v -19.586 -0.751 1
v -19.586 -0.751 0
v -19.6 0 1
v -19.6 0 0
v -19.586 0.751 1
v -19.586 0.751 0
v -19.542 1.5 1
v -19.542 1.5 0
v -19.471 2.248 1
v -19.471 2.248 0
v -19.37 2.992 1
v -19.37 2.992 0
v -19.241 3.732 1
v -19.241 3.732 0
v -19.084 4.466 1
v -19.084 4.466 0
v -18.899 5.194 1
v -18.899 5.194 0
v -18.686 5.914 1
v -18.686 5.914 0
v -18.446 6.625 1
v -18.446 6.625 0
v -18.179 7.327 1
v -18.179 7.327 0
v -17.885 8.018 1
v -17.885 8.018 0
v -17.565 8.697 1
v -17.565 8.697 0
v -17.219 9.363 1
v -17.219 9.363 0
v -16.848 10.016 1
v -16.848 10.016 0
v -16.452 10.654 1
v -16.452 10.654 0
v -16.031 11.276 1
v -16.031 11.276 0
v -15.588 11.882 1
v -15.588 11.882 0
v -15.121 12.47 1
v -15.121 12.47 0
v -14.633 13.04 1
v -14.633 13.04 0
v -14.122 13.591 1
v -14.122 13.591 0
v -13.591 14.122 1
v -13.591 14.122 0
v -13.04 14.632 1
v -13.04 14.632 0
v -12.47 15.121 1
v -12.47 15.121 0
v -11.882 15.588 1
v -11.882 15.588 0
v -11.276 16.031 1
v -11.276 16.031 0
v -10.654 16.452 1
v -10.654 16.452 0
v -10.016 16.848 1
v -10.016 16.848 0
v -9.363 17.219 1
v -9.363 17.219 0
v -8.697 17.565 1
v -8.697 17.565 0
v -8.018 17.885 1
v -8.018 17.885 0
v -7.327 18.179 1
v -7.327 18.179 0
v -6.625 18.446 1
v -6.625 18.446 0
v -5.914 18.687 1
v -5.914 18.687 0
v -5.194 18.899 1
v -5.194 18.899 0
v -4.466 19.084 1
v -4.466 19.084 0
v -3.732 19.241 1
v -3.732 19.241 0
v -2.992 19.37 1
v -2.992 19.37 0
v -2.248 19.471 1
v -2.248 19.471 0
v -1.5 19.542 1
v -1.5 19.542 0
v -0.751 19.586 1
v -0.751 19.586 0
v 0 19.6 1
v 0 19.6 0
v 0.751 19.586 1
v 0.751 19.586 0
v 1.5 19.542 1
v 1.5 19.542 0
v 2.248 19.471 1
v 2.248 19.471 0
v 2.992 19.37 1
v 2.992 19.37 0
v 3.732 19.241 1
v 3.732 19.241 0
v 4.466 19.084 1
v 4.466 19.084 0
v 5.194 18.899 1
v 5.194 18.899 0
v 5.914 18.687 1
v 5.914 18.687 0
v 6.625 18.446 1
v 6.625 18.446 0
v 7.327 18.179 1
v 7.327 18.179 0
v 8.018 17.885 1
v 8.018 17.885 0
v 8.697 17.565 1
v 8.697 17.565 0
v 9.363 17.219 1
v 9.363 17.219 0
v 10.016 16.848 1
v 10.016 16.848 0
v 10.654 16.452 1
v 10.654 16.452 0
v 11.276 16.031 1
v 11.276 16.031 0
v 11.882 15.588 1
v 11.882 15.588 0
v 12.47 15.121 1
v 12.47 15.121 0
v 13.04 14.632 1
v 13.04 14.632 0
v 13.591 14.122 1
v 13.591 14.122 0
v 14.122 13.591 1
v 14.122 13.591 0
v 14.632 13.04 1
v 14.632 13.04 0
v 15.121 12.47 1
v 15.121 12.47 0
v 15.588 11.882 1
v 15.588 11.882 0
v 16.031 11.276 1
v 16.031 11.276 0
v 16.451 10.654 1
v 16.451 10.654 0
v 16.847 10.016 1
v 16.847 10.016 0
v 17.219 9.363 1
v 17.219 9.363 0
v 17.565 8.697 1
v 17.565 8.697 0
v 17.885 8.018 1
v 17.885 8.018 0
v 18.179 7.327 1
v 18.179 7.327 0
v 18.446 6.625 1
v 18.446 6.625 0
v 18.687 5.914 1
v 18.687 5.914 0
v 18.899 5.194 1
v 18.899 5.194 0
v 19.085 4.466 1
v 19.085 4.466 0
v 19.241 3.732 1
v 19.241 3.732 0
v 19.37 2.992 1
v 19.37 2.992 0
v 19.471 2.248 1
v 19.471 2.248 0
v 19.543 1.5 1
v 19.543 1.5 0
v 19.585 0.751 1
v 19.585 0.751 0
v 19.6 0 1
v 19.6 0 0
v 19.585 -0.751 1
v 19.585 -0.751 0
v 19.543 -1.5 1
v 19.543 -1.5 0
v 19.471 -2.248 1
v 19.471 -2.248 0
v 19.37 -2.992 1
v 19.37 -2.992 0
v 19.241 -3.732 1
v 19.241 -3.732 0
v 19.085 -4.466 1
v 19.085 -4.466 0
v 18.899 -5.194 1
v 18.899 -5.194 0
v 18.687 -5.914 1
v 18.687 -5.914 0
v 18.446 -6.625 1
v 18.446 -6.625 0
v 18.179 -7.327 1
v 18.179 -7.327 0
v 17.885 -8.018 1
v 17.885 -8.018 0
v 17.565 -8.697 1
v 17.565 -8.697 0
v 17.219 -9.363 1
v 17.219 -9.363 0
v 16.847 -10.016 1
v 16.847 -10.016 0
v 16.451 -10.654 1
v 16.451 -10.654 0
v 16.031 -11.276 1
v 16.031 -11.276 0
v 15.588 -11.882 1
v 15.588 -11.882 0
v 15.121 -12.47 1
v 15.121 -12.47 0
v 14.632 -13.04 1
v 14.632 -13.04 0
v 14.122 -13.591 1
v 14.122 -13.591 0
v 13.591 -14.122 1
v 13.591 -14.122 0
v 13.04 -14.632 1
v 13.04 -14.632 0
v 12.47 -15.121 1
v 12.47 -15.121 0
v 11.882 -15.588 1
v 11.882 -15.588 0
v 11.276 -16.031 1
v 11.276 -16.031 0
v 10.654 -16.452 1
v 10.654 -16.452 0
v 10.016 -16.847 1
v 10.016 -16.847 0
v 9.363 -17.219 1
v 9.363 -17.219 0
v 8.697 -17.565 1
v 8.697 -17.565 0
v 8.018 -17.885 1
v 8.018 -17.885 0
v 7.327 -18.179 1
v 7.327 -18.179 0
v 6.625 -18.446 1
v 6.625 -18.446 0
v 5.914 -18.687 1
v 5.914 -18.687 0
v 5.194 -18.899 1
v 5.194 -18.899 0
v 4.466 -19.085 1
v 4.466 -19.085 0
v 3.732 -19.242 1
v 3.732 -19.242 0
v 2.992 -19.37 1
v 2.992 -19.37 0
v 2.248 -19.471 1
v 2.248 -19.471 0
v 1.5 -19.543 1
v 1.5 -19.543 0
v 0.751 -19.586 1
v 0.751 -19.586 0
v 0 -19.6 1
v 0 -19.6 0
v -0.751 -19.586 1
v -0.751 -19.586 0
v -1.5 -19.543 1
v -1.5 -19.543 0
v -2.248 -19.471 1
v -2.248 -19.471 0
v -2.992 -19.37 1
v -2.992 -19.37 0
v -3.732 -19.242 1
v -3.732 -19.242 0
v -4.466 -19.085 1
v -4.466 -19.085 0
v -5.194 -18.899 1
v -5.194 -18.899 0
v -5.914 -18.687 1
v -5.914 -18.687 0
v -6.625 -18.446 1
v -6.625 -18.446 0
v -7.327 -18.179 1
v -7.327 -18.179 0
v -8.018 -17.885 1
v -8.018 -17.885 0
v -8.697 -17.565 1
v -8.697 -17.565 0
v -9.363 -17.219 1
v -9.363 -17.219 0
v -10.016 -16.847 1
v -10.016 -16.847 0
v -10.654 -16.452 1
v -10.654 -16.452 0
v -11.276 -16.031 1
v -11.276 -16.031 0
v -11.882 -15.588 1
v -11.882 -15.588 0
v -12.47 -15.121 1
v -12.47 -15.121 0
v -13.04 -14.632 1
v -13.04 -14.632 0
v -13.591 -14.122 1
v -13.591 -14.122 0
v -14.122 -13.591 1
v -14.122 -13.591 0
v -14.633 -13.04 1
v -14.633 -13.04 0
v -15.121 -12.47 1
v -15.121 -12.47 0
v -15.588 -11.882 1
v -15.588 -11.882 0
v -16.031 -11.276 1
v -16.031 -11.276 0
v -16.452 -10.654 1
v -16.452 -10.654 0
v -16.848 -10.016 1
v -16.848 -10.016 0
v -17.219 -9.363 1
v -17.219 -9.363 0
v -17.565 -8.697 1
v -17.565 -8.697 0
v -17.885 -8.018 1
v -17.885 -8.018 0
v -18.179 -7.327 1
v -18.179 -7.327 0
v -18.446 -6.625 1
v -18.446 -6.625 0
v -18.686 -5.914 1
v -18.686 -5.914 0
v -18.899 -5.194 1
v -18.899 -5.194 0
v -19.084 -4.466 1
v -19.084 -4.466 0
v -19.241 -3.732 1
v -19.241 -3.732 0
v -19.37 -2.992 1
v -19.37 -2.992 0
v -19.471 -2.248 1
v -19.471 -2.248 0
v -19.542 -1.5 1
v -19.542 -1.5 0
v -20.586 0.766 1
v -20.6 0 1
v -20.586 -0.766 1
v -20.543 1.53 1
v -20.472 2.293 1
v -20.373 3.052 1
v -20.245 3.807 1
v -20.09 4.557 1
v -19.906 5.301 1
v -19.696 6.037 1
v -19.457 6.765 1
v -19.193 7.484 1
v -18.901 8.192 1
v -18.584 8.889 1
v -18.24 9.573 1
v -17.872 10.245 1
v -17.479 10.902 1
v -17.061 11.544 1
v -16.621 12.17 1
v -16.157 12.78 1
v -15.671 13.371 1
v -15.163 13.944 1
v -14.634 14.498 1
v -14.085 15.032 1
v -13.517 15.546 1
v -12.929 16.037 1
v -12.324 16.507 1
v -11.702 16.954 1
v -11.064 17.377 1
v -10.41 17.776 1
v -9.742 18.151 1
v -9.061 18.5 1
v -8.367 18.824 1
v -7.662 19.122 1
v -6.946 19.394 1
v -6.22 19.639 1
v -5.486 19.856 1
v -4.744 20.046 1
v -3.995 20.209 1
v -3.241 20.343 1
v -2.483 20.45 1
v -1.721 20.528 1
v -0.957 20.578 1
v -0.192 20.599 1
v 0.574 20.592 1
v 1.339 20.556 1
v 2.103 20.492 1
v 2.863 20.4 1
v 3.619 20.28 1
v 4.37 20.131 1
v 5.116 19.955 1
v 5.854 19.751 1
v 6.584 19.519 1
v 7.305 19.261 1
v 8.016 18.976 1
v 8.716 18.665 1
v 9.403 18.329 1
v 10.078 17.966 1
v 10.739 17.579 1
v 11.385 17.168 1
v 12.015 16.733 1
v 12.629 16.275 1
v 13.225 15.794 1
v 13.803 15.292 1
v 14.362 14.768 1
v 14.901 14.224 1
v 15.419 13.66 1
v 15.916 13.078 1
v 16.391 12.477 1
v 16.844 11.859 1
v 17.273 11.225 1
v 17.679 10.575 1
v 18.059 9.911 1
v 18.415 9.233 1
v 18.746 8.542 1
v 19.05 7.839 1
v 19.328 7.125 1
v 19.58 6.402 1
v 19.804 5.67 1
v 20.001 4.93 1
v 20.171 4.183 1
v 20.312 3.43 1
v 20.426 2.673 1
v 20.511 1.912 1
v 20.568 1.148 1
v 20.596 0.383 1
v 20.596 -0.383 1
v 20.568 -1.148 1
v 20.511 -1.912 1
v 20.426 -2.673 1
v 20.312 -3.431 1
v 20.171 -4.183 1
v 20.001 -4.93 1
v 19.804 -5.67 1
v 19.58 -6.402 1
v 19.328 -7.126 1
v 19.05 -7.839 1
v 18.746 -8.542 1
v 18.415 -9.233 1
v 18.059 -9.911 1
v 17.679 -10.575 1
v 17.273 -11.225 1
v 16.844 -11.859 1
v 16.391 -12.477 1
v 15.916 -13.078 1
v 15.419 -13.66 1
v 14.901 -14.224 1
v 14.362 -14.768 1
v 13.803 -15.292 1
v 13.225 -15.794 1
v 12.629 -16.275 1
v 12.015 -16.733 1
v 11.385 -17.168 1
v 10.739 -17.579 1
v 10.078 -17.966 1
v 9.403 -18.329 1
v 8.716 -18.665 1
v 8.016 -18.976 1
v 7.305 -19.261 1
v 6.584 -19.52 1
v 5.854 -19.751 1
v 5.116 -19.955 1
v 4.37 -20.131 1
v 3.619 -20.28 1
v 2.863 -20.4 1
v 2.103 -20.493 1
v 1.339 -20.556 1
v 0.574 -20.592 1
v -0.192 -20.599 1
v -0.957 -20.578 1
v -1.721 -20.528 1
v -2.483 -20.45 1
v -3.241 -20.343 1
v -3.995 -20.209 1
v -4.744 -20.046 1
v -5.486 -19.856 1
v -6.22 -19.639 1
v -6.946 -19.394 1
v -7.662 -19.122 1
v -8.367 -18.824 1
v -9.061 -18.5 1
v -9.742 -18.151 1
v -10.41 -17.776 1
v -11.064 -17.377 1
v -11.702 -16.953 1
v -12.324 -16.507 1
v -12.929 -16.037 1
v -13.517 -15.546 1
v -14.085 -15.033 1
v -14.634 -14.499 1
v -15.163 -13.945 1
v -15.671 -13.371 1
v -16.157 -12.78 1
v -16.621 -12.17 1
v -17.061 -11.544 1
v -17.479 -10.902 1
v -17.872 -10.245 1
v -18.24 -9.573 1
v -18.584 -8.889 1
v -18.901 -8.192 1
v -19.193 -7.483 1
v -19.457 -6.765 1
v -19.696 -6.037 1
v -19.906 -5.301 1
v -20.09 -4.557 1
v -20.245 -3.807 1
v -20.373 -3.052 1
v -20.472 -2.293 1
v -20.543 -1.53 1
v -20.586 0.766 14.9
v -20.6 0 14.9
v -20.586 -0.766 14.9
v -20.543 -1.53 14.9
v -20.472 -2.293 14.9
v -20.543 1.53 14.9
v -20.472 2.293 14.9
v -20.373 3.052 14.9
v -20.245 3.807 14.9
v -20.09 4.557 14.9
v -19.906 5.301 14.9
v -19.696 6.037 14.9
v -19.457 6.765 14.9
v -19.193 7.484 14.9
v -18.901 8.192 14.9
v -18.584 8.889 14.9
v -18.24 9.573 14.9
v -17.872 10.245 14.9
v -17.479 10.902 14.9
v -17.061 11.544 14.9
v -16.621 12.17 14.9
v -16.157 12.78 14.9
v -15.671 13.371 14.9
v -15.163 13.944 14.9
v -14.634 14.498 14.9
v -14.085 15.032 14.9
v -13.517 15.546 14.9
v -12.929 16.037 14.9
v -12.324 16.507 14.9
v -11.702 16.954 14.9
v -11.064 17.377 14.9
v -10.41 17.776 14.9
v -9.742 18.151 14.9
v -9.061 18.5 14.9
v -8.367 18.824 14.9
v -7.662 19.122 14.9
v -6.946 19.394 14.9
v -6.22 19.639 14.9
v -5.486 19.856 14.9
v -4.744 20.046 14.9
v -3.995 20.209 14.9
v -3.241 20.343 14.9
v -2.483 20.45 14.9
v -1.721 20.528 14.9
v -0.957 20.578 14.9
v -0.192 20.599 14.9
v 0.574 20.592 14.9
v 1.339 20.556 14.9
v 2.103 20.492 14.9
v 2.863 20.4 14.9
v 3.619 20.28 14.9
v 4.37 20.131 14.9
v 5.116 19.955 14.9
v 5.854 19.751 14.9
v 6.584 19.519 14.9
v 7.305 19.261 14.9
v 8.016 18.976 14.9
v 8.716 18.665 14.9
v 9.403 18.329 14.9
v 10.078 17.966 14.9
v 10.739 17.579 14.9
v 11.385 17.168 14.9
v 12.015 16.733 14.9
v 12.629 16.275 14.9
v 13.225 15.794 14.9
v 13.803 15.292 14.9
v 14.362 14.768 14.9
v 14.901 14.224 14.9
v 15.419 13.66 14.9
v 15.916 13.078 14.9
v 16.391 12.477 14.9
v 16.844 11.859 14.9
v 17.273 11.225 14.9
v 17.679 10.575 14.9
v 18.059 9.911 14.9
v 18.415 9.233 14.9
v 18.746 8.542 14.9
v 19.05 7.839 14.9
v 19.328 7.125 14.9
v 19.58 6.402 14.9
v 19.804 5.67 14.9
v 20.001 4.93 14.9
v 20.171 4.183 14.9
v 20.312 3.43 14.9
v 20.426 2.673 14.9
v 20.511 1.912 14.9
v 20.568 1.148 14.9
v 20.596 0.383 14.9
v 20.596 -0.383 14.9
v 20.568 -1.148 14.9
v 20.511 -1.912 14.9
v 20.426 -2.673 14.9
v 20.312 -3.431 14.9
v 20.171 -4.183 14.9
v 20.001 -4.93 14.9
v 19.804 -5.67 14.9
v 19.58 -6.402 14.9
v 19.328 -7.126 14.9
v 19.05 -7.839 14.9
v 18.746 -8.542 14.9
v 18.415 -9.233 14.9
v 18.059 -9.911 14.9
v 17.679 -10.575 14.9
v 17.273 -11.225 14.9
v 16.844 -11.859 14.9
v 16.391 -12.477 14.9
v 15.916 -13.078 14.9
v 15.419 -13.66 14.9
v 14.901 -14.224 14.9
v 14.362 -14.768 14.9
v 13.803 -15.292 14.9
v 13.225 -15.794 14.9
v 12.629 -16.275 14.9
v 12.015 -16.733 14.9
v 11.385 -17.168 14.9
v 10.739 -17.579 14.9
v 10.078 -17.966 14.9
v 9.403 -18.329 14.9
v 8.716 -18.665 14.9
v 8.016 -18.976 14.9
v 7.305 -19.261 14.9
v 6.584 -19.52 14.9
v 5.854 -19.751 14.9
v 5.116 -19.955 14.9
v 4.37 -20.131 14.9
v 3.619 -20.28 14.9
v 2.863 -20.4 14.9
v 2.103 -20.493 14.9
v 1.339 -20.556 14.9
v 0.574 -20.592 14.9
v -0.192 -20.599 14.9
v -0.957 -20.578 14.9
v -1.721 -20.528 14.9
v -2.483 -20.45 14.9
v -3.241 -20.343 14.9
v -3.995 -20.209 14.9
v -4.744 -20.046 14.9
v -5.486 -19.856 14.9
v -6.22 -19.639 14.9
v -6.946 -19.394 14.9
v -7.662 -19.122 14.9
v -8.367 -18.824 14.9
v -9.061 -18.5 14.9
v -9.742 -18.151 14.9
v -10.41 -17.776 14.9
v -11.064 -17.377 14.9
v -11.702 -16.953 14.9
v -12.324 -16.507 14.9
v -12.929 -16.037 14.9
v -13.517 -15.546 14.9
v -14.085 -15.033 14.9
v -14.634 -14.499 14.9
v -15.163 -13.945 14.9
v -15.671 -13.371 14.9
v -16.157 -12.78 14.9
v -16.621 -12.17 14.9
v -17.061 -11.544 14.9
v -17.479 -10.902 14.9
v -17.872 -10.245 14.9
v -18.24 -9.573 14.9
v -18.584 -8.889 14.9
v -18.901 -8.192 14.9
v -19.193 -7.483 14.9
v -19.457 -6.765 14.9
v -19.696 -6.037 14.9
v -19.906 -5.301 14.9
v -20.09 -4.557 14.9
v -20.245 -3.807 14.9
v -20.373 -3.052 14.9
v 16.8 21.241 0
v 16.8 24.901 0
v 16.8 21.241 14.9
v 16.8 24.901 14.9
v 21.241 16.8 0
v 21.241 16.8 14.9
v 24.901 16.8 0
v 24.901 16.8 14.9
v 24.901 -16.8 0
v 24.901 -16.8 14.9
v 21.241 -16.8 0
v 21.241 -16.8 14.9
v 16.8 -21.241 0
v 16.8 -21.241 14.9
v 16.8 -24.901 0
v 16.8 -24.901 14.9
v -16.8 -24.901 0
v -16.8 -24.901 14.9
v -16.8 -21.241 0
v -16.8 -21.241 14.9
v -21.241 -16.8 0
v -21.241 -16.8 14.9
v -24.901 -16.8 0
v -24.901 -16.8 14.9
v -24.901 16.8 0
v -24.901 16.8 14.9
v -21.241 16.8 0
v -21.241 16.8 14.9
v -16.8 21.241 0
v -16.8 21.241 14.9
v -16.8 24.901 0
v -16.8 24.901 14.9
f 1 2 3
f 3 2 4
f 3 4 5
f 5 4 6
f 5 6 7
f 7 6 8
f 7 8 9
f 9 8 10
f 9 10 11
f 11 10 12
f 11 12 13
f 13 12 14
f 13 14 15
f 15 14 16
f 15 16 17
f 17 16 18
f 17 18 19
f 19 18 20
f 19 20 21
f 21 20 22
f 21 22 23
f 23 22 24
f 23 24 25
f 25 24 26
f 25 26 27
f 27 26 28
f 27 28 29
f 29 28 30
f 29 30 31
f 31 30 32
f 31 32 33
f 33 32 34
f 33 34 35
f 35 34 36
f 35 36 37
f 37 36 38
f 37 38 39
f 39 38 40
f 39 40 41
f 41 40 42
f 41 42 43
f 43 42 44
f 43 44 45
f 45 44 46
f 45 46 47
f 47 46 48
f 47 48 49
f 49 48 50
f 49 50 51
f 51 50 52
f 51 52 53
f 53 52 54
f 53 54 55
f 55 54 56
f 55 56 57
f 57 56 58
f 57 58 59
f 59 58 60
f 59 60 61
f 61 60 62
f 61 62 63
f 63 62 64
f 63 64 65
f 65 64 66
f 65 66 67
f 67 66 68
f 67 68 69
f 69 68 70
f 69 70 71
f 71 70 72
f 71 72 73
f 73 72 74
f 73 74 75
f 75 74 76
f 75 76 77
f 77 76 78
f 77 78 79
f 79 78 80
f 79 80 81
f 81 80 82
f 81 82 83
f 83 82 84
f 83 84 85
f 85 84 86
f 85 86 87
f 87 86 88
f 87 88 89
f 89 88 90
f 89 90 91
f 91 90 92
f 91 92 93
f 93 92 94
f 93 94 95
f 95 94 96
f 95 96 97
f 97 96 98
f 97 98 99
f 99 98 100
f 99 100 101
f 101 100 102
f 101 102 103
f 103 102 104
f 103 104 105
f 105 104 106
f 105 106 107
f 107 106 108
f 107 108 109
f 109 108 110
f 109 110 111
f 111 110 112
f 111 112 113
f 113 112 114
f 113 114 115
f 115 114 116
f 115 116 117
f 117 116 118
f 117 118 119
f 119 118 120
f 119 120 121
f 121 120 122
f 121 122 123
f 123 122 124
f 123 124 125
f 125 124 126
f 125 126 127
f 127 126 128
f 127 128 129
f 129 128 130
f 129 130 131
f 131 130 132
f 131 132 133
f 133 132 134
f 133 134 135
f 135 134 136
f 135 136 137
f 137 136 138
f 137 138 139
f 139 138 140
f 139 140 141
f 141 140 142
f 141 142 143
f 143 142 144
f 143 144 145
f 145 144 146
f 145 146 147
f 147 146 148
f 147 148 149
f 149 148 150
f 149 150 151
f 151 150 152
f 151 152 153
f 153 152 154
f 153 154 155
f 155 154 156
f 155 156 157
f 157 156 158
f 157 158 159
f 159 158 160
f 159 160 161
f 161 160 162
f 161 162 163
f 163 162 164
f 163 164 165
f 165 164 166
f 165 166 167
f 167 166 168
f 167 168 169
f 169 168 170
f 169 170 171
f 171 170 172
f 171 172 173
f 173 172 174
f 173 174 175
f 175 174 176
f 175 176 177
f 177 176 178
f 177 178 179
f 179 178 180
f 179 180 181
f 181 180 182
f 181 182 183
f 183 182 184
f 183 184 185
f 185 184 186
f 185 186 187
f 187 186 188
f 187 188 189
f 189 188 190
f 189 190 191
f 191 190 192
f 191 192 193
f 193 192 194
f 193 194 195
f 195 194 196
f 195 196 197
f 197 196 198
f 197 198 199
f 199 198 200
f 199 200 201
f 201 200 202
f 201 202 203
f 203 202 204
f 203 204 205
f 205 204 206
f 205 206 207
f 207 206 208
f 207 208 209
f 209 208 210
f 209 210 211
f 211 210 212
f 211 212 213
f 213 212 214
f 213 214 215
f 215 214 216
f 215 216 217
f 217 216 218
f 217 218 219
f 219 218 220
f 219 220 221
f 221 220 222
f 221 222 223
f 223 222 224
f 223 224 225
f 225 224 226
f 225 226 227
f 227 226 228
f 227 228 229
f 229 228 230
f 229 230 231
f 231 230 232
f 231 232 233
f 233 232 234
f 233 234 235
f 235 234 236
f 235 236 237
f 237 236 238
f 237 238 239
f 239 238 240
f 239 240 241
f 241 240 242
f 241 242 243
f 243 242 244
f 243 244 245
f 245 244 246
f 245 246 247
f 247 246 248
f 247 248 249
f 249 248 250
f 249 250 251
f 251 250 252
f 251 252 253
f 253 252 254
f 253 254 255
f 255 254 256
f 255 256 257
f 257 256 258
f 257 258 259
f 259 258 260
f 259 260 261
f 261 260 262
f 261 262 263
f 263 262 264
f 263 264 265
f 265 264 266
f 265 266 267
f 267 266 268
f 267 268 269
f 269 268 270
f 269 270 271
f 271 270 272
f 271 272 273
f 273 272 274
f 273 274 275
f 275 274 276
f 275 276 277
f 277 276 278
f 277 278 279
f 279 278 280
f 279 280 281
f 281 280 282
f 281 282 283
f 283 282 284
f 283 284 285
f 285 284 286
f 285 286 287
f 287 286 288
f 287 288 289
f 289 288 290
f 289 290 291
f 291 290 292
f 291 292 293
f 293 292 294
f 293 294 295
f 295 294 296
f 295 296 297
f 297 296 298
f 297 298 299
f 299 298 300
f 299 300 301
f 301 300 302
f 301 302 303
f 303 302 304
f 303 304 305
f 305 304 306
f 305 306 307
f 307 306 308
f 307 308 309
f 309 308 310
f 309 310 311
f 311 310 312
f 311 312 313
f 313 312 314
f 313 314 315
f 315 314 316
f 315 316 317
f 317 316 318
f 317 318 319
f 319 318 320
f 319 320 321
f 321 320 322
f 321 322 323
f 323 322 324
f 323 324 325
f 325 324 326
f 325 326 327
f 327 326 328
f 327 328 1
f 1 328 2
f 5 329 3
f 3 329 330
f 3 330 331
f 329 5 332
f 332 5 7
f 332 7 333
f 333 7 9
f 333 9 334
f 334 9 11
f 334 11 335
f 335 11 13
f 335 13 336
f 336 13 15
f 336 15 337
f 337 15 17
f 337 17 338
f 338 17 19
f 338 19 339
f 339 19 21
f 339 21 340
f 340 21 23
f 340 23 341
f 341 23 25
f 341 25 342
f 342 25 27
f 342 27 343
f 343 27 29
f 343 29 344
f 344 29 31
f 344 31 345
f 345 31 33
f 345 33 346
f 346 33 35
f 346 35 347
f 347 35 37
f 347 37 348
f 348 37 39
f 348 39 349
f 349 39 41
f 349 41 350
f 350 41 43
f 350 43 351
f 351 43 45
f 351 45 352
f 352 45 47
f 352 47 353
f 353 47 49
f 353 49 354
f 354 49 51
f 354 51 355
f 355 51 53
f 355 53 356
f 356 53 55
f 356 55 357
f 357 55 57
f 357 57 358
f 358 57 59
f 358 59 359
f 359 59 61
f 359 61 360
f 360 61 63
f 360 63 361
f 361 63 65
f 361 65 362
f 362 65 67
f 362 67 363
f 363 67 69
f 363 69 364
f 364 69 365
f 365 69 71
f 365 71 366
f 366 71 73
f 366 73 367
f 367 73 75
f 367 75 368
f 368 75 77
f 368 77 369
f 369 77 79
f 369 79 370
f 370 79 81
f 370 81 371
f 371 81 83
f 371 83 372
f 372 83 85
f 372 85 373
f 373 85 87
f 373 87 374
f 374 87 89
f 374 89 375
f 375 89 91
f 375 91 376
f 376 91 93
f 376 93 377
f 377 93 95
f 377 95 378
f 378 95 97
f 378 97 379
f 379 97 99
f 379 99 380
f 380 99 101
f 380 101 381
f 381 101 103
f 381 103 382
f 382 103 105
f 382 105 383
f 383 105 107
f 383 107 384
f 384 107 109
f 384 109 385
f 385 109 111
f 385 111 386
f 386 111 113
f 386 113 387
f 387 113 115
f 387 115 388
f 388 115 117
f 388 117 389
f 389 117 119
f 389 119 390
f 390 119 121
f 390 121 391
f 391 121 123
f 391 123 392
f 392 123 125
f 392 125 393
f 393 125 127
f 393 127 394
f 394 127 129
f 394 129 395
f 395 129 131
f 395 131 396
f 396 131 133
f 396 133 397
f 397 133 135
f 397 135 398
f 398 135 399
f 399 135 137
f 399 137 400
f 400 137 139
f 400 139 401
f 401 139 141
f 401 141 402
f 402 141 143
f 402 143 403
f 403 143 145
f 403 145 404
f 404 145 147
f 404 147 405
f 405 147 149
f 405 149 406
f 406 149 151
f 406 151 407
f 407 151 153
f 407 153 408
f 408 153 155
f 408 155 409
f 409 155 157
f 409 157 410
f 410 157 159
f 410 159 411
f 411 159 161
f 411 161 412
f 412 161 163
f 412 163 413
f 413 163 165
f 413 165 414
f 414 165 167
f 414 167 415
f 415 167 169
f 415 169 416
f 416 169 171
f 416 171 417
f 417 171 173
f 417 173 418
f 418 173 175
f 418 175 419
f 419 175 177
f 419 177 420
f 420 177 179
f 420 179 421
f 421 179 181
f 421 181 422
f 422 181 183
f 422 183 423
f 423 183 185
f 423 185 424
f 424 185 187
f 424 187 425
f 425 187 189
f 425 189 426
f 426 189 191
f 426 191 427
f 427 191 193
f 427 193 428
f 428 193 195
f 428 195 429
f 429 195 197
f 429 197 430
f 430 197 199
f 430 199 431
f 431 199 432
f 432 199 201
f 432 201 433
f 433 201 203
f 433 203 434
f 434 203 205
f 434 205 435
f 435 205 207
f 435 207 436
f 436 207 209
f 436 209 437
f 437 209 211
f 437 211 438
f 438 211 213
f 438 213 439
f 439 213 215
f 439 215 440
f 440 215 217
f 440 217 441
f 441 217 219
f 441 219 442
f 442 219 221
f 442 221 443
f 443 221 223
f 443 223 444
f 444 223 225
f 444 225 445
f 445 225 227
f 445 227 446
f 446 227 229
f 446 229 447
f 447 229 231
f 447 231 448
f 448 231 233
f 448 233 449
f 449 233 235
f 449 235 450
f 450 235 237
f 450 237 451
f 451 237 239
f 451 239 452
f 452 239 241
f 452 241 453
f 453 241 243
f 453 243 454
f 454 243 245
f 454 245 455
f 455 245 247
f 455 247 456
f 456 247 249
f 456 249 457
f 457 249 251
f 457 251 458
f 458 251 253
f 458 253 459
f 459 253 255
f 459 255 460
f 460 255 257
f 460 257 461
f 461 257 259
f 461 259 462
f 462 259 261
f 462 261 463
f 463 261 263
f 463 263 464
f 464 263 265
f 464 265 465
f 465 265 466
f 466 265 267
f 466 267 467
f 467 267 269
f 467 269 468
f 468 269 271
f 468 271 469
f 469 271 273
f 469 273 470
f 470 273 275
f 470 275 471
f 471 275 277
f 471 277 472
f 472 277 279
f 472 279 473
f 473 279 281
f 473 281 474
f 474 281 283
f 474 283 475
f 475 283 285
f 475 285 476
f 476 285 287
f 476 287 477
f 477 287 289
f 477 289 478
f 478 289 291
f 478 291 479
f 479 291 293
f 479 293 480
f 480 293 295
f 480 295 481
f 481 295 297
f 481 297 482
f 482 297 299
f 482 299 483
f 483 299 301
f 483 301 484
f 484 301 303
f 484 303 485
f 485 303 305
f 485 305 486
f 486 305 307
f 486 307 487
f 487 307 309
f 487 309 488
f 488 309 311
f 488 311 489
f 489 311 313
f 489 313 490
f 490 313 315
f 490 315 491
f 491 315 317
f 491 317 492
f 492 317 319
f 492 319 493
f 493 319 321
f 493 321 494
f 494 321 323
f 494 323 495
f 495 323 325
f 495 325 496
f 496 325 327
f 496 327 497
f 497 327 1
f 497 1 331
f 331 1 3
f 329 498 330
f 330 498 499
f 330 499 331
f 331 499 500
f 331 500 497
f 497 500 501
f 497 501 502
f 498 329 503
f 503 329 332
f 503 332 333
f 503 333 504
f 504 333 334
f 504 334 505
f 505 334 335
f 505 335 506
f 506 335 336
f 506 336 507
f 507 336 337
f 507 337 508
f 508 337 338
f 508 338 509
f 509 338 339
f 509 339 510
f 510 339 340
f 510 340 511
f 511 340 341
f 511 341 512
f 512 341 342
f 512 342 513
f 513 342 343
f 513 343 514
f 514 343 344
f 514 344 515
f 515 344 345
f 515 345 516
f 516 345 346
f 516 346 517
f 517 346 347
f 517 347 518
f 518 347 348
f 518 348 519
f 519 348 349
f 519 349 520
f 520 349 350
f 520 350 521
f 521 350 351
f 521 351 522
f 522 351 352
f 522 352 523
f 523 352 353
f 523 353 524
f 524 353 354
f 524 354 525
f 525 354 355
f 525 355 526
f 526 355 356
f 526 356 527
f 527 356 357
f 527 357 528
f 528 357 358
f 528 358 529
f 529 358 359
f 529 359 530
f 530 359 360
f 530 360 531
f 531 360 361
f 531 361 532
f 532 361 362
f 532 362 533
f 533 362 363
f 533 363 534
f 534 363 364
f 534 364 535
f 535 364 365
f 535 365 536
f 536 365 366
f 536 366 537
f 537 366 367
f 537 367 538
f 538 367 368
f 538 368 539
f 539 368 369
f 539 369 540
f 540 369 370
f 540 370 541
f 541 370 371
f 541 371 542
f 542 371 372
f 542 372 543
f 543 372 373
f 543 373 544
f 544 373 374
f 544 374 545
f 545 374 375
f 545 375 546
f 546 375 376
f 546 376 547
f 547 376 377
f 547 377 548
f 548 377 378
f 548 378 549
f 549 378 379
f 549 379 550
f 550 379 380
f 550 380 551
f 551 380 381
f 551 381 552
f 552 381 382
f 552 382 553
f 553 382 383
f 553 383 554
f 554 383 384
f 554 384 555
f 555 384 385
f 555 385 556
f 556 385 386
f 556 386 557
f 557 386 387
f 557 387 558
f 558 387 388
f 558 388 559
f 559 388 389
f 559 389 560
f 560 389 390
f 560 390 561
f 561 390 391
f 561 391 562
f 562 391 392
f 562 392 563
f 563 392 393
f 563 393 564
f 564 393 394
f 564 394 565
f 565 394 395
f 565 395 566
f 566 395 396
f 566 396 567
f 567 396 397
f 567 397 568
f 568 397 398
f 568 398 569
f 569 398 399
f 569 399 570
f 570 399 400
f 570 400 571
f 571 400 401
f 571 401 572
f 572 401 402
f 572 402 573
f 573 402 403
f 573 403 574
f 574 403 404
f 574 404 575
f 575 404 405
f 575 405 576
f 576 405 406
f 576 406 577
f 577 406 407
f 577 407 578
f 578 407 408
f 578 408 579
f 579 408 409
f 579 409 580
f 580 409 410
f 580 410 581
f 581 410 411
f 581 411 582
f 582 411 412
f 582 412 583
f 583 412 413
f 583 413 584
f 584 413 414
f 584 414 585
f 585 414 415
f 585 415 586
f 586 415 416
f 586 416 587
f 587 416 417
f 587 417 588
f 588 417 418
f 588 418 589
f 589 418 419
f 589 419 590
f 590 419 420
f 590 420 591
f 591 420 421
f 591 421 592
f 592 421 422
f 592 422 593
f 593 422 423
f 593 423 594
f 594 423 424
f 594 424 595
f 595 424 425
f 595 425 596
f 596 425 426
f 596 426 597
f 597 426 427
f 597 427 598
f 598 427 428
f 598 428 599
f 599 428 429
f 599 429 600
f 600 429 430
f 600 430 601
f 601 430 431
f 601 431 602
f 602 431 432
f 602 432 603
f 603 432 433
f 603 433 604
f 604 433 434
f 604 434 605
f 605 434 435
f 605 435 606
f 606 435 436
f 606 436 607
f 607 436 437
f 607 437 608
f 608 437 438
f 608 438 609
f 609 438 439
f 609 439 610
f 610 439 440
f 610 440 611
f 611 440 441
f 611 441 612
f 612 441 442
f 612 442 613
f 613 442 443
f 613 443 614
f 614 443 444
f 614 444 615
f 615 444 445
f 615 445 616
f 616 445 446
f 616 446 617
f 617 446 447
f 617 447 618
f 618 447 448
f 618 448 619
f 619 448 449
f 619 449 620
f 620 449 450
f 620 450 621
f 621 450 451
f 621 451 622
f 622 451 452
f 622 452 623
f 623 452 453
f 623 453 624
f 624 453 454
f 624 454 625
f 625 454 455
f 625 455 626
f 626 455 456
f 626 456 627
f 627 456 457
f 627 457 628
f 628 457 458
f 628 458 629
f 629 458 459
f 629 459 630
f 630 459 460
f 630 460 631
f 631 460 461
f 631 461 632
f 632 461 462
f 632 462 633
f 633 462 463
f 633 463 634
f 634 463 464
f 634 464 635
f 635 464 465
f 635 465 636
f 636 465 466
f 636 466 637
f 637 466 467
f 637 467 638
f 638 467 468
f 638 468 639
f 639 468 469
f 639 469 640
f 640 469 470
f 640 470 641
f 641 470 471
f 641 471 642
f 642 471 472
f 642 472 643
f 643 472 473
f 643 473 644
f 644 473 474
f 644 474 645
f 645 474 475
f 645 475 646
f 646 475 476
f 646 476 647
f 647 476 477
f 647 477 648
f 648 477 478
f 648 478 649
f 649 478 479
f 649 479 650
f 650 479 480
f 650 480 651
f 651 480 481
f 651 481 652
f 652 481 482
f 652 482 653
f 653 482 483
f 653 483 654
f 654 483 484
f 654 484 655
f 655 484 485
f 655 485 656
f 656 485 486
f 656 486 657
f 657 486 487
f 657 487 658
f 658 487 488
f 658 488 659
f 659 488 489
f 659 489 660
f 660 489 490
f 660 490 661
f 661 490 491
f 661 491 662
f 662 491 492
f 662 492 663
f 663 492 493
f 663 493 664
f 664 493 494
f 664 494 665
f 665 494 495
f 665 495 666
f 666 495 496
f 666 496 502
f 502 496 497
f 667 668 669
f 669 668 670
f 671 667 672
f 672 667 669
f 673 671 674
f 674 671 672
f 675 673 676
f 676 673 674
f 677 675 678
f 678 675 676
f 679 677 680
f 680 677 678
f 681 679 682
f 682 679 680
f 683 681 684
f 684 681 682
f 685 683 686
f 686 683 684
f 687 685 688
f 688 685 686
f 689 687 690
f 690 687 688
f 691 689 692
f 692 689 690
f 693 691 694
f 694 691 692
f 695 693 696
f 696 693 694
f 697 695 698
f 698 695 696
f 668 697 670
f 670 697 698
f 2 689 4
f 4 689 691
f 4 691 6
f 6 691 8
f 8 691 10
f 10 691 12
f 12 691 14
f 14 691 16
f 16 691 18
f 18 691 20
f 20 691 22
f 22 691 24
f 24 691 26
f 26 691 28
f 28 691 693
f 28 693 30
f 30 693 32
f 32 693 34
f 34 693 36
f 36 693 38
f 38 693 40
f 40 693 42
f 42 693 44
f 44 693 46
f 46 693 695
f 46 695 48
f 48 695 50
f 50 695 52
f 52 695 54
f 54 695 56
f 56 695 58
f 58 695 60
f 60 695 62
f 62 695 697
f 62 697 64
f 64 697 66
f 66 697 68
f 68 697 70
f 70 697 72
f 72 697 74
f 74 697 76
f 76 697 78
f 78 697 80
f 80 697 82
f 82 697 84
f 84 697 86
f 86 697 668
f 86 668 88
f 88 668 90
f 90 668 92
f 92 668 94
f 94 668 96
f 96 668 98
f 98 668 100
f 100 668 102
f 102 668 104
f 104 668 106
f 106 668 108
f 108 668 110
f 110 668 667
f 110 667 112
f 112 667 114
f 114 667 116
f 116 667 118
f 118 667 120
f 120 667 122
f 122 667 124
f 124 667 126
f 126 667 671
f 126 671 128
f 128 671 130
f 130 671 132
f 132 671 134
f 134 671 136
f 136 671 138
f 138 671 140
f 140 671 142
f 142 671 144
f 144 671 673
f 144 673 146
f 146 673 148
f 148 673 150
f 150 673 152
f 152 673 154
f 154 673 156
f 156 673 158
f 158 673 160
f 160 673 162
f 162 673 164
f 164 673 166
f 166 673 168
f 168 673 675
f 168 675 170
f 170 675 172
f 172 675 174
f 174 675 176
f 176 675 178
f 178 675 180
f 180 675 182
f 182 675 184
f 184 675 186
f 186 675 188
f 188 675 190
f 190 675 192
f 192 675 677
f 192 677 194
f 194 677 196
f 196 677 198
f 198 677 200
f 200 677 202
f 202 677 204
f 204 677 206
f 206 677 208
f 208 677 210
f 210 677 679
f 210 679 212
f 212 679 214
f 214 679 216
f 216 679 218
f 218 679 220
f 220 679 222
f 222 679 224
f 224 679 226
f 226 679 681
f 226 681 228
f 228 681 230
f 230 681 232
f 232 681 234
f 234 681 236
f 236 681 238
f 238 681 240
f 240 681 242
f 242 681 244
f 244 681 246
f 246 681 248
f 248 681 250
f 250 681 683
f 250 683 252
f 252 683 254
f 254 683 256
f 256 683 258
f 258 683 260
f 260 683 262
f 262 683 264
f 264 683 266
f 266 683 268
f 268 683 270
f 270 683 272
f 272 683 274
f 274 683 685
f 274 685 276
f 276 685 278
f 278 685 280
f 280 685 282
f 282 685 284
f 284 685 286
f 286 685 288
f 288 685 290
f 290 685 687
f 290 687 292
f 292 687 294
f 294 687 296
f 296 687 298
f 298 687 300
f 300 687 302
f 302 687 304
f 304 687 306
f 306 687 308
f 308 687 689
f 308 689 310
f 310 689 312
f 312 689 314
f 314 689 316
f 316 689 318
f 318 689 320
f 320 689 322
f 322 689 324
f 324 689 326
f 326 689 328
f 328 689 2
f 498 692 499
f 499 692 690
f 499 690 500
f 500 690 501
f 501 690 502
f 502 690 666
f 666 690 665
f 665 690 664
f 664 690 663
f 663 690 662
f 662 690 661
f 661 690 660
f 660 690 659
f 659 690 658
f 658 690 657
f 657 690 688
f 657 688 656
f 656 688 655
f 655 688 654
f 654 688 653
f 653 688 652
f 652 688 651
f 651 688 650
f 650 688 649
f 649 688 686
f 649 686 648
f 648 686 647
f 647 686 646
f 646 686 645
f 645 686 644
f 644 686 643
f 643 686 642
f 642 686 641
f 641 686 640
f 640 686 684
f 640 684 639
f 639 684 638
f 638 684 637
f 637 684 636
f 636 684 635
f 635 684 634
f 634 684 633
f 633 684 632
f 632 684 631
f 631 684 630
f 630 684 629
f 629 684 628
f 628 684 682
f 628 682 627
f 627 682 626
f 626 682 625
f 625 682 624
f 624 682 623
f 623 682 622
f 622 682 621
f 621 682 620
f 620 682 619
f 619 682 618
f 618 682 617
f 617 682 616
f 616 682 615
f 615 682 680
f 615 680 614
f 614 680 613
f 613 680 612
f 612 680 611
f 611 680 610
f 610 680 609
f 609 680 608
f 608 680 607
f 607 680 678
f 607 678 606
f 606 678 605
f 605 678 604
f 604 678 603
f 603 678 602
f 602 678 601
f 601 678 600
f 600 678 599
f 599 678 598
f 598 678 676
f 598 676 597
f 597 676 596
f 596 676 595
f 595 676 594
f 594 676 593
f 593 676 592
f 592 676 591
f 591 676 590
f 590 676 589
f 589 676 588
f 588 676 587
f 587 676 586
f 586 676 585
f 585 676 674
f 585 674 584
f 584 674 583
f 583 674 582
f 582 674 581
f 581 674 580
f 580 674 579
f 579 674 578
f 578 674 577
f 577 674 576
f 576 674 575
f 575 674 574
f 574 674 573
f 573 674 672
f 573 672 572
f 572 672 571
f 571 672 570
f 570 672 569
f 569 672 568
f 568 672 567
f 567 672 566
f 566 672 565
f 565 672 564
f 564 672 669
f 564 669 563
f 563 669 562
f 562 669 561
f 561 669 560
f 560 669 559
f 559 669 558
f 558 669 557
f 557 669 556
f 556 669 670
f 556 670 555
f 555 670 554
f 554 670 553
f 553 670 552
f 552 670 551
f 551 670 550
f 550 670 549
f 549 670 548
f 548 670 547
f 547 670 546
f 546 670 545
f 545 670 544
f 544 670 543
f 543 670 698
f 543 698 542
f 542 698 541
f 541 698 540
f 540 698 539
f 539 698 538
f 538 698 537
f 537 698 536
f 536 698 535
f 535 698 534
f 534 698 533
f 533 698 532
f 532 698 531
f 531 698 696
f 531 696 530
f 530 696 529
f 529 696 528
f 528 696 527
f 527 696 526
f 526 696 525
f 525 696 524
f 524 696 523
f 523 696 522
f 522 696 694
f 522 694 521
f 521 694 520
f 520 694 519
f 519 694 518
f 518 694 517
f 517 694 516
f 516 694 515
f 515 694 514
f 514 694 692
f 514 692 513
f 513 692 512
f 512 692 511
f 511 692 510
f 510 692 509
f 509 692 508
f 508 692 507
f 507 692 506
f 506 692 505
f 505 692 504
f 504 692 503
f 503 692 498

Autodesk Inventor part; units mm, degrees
ref_plane "YZ Plane" through (0, 0, 0) normal (1, 0, 0) x (0, 1, 0)
ref_plane "XZ Plane" through (0, 0, 0) normal (0, 1, 0) x (-1, 0, 0)
ref_plane "XY Plane" through (0, 0, 0) normal (0, 0, 1) x (1, 0, 0)
sketch "Sketch1" plane through (0, 0, 0) normal (0, 0, 1) x (1, 0, 0)
  line L0 (-34.8609, 0) -> (34.8609, 0) construction
  line L1 (0, -34.8609) -> (0, 34.8609) construction
  line L2 (0, 0) -> (13.4339, 13.4339) construction
  line L3 (0, 0) -> (18.9985, 0) construction
  line L4 (0, 24.9006) -> (16.8, 24.9006)
  line L5 (16.8, 24.9006) -> (16.8, 21.2406)
  line L6 (16.8, 21.2406) -> (19.0203, 19.0203)
  line L7 (24.9006, 0) -> (24.9006, 16.8)
  line L8 (24.9006, 16.8) -> (21.2406, 16.8)
  line L9 (21.2406, 16.8) -> (19.0203, 19.0203)
  line L10 (0, 0) -> (-13.4339, 13.4339) construction
  line L11 (0, 0) -> (-18.9985, 0) construction
  line L12 (0, 24.9006) -> (-16.8, 24.9006)
  line L13 (-16.8, 24.9006) -> (-16.8, 21.2406)
  line L14 (-16.8, 21.2406) -> (-19.0203, 19.0203)
  line L15 (-24.9006, 0) -> (-24.9006, 16.8)
  line L16 (-24.9006, 16.8) -> (-21.2406, 16.8)
  line L17 (-21.2406, 16.8) -> (-19.0203, 19.0203)
  line L18 (0, 0) -> (13.4339, -13.4339) construction
  line L19 (0, -24.9006) -> (16.8, -24.9006)
  line L20 (16.8, -24.9006) -> (16.8, -21.2406)
  line L21 (16.8, -21.2406) -> (19.0203, -19.0203)
  line L22 (24.9006, 0) -> (24.9006, -16.8)
  line L23 (24.9006, -16.8) -> (21.2406, -16.8)
  line L24 (21.2406, -16.8) -> (19.0203, -19.0203)
  line L25 (0, 0) -> (-13.4339, -13.4339) construction
  line L26 (0, -24.9006) -> (-16.8, -24.9006)
  line L27 (-16.8, -24.9006) -> (-16.8, -21.2406)
  line L28 (-16.8, -21.2406) -> (-19.0203, -19.0203)
  line L29 (-24.9006, 0) -> (-24.9006, -16.8)
  line L30 (-24.9006, -16.8) -> (-21.2406, -16.8)
  line L31 (-21.2406, -16.8) -> (-19.0203, -19.0203)
  dimension "d0" = 45
  dimension "d1" = 3.14
  dimension "d2" = 3.66
  dimension "d3" = 16.8
extrude "Thickness" add sketch "Sketch1" along normal blind 14.9
hole "Hole1" at (0, 0, 0) direction (0, 0, 1) diameter 41.2 end through all
sketch "Sketch2" plane through (0, 0, 0) normal (0, 0, -1) x (-1, 0, 0)
  circle A0 centre (0, 0) radius 20.6 projected
  line L0 (16.8, 24.9006) -> (-16.8, 24.9006) projected
  line L1 (-16.8, 24.9006) -> (-16.8, 21.2406) projected
  line L2 (-16.8, 21.2406) -> (-21.2406, 16.8) projected
  line L3 (-21.2406, 16.8) -> (-24.9006, 16.8) projected
  line L4 (-24.9006, 16.8) -> (-24.9006, -16.8) projected
  line L5 (-24.9006, -16.8) -> (-21.2406, -16.8) projected
  line L6 (-21.2406, -16.8) -> (-16.8, -21.2406) projected
  line L7 (-16.8, -21.2406) -> (-16.8, -24.9006) projected
  line L8 (-16.8, -24.9006) -> (16.8, -24.9006) projected
  line L9 (16.8, -24.9006) -> (16.8, -21.2406) projected
  line L10 (16.8, -21.2406) -> (21.2406, -16.8) projected
  line L11 (21.2406, -16.8) -> (24.9006, -16.8) projected
  line L12 (24.9006, -16.8) -> (24.9006, 16.8) projected
  line L13 (24.9006, 16.8) -> (21.2406, 16.8) projected
  line L14 (21.2406, 16.8) -> (16.8, 21.2406) projected
  line L15 (16.8, 21.2406) -> (16.8, 24.9006) projected
  circle A1 centre (0, 0) radius 19.6
  dimension "d17" = 1
extrude "Extrusion2" add sketch "Sketch2" against normal blind 1 contours A0
equation "\"Lens_diameter\" = 25.4"
properties part number "20_Lens_holder"
